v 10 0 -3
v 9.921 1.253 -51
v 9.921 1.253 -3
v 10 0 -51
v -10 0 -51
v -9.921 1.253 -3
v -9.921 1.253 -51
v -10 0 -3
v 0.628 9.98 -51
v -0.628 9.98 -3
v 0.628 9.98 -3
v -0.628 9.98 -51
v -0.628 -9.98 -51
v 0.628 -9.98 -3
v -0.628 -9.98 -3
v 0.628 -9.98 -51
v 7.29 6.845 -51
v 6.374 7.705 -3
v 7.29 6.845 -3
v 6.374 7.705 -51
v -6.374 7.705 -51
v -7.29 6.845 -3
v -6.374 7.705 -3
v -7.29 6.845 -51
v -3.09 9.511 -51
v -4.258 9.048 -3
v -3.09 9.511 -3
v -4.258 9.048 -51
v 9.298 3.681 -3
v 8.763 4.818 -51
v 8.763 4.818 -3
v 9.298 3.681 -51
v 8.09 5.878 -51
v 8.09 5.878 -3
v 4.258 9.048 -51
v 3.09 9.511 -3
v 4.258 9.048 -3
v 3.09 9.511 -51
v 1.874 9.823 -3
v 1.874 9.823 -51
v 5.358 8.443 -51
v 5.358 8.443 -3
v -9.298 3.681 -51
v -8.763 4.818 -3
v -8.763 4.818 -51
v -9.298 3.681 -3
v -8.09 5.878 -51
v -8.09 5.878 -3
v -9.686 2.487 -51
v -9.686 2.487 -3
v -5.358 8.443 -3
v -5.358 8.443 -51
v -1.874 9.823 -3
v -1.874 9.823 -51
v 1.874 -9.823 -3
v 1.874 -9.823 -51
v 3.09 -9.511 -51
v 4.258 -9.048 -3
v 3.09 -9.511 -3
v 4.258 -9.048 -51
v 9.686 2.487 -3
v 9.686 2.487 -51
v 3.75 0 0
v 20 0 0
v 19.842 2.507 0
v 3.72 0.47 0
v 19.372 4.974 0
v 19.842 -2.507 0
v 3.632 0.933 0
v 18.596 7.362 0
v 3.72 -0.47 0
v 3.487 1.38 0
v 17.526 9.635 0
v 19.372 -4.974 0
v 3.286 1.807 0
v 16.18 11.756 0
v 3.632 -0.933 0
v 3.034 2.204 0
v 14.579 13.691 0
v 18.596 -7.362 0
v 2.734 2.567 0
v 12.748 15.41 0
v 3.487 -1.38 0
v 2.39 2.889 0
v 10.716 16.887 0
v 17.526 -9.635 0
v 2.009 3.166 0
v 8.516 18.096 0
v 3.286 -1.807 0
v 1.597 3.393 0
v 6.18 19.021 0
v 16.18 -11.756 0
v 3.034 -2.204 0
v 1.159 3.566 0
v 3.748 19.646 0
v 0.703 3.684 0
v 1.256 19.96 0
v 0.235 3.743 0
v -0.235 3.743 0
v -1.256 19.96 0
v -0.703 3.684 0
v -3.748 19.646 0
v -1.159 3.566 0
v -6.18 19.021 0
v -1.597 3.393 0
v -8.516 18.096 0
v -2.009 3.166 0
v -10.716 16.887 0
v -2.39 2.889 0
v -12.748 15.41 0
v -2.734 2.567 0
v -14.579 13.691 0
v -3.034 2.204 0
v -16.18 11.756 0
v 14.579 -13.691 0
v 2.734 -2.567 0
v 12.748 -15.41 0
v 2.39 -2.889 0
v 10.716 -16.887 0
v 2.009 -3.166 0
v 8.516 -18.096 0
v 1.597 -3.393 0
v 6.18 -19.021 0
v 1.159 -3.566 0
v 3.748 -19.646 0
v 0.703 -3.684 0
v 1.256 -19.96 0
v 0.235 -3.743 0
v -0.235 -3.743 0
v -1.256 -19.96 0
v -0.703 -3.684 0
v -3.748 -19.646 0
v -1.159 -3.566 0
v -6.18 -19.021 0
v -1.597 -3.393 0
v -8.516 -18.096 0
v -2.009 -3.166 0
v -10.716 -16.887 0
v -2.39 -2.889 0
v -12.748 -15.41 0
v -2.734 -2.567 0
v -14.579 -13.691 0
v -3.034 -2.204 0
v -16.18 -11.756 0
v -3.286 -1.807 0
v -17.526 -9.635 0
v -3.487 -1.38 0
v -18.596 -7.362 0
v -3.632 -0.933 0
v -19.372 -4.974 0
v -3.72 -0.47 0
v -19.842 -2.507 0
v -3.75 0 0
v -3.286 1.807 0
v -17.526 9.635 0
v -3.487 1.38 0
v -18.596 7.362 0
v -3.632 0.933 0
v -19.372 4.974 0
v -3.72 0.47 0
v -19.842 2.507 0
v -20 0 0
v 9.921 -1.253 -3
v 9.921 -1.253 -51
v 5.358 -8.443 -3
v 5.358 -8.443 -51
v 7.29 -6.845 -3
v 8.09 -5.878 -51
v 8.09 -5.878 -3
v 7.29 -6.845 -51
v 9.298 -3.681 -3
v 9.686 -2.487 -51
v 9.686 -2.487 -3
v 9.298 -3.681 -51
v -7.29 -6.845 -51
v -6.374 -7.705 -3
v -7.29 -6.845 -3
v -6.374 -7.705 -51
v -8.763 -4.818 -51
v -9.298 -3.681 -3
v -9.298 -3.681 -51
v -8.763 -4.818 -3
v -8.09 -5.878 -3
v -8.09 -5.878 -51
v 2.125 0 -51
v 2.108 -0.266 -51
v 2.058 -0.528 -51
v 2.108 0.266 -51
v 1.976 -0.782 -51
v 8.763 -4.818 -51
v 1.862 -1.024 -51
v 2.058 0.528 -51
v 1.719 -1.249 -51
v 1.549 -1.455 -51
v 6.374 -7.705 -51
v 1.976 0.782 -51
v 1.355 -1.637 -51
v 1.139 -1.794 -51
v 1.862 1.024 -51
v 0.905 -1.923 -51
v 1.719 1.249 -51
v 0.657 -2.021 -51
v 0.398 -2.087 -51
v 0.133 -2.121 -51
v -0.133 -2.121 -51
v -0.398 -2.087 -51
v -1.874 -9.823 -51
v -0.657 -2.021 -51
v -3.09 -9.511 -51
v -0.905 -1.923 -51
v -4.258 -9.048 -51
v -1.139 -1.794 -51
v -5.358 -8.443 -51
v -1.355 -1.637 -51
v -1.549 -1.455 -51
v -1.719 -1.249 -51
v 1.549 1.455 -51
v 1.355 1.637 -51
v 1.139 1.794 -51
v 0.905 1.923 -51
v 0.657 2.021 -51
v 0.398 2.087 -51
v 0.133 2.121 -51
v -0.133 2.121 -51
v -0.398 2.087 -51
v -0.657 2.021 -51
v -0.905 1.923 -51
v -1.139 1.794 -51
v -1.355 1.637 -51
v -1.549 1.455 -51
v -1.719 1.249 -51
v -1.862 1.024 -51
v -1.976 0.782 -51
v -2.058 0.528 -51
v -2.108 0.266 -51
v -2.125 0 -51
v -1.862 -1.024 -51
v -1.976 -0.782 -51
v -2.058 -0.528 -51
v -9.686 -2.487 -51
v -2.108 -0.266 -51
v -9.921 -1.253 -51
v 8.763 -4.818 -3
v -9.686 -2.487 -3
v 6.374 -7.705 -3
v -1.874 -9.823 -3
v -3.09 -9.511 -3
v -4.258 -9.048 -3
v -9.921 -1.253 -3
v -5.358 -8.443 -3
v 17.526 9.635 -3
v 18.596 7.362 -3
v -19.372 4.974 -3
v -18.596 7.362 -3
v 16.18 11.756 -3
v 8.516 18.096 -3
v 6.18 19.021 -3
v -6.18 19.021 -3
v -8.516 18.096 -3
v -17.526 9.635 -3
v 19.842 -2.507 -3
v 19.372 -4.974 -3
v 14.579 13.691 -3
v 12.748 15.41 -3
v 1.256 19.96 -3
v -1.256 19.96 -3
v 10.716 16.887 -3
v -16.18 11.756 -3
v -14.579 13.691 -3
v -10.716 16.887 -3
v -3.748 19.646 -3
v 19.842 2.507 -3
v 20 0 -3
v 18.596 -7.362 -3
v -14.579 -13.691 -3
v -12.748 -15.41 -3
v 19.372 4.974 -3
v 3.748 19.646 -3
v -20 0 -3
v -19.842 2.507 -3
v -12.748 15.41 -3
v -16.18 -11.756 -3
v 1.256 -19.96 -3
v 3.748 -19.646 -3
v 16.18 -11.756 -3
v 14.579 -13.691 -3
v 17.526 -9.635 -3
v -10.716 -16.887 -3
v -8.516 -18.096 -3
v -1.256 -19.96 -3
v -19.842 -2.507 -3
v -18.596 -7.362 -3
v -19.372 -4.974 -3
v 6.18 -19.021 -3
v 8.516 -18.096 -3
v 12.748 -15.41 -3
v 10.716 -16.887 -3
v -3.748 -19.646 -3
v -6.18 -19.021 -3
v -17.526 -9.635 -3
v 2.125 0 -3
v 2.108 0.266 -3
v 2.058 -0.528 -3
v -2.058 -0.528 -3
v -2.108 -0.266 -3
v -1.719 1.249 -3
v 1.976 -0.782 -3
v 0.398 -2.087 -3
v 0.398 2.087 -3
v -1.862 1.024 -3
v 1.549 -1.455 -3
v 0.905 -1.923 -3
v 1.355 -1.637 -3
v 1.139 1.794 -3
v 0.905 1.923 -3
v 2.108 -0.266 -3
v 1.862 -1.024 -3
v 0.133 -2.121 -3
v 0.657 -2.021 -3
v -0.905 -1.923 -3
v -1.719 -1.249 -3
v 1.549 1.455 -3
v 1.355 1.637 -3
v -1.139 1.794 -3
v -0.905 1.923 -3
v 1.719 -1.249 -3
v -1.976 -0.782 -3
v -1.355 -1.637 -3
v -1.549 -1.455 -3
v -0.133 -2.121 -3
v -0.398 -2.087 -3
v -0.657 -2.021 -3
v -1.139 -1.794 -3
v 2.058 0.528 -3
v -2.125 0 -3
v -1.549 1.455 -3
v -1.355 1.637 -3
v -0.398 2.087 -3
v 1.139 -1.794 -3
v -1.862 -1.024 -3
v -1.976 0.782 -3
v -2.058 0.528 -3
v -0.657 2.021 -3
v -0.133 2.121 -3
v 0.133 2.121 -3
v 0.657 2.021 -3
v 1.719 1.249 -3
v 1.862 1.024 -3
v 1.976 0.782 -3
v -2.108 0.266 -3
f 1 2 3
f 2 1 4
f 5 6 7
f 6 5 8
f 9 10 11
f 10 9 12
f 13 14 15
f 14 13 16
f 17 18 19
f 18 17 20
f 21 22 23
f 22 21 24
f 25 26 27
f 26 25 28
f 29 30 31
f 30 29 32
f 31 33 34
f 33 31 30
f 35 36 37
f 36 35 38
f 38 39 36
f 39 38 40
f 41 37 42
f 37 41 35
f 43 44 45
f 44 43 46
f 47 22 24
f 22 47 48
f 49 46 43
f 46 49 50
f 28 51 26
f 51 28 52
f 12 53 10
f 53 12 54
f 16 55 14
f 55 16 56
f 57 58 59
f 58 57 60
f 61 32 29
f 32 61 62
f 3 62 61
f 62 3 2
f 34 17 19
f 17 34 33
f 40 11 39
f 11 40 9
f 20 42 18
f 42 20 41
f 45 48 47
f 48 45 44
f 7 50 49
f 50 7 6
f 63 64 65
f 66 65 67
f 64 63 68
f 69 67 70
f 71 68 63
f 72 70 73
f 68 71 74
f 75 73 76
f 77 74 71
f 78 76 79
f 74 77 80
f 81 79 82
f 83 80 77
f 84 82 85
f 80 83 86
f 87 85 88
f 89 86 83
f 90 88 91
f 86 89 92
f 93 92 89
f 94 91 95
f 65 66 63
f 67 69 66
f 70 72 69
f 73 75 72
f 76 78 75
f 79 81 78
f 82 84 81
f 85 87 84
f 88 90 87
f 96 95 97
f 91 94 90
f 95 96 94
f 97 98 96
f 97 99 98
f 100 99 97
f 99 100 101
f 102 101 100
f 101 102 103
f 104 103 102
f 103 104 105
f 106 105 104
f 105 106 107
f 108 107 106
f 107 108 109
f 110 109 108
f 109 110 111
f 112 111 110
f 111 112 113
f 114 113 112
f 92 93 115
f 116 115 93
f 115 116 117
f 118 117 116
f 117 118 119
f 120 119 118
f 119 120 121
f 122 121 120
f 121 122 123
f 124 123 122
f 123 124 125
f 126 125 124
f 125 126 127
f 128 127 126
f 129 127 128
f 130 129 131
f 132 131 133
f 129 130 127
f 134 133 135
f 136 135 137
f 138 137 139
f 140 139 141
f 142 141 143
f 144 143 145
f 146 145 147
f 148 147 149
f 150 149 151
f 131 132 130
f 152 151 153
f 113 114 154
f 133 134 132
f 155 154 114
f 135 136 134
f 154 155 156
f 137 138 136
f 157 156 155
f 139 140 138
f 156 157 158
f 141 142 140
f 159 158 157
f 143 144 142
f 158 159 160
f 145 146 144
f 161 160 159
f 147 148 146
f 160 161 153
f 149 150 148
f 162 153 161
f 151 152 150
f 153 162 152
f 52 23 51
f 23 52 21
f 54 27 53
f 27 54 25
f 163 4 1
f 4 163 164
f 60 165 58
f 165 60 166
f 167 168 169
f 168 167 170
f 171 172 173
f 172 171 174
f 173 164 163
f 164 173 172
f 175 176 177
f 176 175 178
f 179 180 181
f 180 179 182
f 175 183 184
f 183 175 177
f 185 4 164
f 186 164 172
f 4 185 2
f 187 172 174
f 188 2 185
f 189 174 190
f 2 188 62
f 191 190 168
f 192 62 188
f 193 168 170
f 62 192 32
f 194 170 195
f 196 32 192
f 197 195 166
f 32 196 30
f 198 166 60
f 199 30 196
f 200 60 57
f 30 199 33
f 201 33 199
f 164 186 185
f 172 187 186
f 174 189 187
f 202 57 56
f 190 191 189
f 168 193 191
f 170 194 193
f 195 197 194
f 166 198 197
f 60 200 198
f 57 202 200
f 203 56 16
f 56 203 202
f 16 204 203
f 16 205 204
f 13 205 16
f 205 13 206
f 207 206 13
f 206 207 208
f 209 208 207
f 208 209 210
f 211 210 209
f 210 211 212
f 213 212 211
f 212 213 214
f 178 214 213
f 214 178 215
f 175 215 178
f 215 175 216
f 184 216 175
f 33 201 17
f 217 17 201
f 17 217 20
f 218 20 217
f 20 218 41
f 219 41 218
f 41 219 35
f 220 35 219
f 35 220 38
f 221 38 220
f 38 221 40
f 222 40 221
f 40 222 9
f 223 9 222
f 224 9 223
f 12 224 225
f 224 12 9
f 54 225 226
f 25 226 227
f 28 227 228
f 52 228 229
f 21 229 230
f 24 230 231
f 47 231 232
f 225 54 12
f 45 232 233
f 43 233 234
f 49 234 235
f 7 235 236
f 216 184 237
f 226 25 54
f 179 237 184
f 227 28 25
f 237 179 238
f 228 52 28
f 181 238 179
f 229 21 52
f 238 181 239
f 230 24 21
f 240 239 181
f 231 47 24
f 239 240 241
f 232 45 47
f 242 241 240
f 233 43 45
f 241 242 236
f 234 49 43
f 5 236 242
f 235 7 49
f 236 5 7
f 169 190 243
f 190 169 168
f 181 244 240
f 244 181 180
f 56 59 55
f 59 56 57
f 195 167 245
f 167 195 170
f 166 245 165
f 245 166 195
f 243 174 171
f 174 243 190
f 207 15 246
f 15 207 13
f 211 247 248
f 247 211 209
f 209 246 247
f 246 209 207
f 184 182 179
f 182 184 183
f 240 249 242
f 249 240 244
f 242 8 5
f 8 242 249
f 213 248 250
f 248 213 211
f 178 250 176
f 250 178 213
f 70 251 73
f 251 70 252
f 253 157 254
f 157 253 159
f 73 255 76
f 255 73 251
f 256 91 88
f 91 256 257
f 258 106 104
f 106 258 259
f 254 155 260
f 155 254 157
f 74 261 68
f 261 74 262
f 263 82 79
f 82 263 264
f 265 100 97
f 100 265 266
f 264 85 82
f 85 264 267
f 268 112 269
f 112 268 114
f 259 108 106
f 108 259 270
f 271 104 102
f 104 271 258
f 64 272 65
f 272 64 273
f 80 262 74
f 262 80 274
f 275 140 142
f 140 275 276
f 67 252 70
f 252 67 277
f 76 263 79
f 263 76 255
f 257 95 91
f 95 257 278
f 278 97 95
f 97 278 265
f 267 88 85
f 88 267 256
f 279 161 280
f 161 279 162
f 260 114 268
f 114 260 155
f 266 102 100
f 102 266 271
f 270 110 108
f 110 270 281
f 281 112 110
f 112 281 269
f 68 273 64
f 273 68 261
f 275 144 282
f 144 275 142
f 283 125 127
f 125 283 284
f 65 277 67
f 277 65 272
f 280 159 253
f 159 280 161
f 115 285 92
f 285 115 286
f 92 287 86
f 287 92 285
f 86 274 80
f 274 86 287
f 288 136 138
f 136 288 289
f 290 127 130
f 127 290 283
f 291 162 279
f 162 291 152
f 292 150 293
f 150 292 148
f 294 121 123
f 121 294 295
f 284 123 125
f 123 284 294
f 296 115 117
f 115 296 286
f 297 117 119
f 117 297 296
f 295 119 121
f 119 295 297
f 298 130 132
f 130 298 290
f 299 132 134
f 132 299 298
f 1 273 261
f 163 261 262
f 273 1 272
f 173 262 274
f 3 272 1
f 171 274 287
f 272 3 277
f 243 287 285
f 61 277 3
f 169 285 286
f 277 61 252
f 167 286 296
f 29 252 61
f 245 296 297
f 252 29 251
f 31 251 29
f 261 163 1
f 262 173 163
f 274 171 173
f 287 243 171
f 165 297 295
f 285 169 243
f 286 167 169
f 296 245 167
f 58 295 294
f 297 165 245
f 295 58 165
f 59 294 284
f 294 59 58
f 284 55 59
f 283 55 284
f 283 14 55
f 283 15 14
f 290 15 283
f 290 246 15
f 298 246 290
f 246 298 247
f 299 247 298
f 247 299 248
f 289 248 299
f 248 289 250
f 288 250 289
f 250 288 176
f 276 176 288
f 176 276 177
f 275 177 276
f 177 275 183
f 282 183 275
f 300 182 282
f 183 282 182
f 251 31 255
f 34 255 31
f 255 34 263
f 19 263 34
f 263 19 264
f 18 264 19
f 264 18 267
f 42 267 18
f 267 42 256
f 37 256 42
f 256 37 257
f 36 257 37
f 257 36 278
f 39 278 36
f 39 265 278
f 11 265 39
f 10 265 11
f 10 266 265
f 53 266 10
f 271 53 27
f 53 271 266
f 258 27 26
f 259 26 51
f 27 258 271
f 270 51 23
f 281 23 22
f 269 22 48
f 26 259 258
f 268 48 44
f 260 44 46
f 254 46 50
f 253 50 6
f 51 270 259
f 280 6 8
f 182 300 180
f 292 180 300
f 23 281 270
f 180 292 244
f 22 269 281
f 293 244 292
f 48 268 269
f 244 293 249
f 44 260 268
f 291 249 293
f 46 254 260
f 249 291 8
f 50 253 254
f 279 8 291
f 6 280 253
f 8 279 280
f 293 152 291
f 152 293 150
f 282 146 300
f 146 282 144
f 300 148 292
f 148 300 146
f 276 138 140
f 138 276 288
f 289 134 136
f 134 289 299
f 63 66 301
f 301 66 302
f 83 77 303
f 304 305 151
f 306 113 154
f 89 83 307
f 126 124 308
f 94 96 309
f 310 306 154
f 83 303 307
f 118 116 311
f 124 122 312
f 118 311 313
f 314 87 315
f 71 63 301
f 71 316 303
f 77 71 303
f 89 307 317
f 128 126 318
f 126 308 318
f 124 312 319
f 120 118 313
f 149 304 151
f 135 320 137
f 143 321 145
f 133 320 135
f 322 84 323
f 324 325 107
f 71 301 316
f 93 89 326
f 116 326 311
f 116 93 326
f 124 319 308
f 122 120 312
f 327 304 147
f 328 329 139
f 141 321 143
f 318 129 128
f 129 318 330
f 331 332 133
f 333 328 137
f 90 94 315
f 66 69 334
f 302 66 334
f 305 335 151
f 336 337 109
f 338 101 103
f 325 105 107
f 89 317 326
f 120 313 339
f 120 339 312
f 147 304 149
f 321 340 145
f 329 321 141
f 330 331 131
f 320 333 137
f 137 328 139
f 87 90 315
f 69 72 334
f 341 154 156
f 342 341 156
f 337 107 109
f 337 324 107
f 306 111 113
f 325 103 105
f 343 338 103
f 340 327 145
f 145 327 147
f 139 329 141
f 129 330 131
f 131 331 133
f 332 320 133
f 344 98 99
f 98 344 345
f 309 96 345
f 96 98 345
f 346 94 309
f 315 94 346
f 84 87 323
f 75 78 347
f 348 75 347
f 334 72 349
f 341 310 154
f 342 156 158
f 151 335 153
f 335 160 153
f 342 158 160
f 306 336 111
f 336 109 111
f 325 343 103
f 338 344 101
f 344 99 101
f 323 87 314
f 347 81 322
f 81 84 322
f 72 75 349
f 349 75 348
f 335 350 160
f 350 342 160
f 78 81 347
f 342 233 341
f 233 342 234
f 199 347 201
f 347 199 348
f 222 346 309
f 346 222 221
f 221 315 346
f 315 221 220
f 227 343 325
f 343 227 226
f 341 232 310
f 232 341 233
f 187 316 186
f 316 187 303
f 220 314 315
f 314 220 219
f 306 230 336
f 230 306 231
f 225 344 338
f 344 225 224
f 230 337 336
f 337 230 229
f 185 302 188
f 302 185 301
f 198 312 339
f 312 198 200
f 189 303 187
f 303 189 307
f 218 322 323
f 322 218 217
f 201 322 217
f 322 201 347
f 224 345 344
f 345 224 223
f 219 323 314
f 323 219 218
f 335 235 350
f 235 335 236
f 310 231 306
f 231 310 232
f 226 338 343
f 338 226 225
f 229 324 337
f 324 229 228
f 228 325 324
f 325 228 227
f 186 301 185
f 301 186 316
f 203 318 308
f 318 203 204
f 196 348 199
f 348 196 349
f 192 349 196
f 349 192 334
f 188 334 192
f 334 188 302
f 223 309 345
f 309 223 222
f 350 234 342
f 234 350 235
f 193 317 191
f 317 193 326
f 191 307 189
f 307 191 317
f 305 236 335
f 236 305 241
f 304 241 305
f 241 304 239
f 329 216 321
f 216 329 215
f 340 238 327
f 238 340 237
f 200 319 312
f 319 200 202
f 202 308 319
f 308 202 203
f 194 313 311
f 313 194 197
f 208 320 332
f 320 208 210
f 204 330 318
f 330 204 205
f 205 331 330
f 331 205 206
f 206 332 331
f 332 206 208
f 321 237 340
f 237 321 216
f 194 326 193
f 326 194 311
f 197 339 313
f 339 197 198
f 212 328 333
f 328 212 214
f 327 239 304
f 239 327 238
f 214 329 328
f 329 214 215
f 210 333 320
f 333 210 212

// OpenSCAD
$fn = 50;


difference() {
	union() {
		translate(v = [0, 0, -51.0000000000]) {
			cylinder(h = 51, r = 10.0000000000);
		}
		translate(v = [0, 0, -3.0000000000]) {
			cylinder(h = 3, r = 20.0000000000);
		}
	}
	union() {
		translate(v = [0, 0, 0]) {
			rotate(a = [0, 0, 0]) {
				difference() {
					union() {
						#translate(v = [0, 0, -51.0000000000]) {
							cylinder(h = 51, r = 2.0000000000);
						}
						#translate(v = [0, 0, -3]) {
							cylinder(h = 3, r1 = 2.1250000000, r2 = 3.7500000000);
						}
						#translate(v = [0, 0, -51.0000000000]) {
							cylinder(h = 51, r = 2.1250000000);
						}
						#translate(v = [0, 0, -51.0000000000]) {
							cylinder(h = 51, r = 2.0000000000);
						}
					}
					union();
				}
			}
		}
	}
}
